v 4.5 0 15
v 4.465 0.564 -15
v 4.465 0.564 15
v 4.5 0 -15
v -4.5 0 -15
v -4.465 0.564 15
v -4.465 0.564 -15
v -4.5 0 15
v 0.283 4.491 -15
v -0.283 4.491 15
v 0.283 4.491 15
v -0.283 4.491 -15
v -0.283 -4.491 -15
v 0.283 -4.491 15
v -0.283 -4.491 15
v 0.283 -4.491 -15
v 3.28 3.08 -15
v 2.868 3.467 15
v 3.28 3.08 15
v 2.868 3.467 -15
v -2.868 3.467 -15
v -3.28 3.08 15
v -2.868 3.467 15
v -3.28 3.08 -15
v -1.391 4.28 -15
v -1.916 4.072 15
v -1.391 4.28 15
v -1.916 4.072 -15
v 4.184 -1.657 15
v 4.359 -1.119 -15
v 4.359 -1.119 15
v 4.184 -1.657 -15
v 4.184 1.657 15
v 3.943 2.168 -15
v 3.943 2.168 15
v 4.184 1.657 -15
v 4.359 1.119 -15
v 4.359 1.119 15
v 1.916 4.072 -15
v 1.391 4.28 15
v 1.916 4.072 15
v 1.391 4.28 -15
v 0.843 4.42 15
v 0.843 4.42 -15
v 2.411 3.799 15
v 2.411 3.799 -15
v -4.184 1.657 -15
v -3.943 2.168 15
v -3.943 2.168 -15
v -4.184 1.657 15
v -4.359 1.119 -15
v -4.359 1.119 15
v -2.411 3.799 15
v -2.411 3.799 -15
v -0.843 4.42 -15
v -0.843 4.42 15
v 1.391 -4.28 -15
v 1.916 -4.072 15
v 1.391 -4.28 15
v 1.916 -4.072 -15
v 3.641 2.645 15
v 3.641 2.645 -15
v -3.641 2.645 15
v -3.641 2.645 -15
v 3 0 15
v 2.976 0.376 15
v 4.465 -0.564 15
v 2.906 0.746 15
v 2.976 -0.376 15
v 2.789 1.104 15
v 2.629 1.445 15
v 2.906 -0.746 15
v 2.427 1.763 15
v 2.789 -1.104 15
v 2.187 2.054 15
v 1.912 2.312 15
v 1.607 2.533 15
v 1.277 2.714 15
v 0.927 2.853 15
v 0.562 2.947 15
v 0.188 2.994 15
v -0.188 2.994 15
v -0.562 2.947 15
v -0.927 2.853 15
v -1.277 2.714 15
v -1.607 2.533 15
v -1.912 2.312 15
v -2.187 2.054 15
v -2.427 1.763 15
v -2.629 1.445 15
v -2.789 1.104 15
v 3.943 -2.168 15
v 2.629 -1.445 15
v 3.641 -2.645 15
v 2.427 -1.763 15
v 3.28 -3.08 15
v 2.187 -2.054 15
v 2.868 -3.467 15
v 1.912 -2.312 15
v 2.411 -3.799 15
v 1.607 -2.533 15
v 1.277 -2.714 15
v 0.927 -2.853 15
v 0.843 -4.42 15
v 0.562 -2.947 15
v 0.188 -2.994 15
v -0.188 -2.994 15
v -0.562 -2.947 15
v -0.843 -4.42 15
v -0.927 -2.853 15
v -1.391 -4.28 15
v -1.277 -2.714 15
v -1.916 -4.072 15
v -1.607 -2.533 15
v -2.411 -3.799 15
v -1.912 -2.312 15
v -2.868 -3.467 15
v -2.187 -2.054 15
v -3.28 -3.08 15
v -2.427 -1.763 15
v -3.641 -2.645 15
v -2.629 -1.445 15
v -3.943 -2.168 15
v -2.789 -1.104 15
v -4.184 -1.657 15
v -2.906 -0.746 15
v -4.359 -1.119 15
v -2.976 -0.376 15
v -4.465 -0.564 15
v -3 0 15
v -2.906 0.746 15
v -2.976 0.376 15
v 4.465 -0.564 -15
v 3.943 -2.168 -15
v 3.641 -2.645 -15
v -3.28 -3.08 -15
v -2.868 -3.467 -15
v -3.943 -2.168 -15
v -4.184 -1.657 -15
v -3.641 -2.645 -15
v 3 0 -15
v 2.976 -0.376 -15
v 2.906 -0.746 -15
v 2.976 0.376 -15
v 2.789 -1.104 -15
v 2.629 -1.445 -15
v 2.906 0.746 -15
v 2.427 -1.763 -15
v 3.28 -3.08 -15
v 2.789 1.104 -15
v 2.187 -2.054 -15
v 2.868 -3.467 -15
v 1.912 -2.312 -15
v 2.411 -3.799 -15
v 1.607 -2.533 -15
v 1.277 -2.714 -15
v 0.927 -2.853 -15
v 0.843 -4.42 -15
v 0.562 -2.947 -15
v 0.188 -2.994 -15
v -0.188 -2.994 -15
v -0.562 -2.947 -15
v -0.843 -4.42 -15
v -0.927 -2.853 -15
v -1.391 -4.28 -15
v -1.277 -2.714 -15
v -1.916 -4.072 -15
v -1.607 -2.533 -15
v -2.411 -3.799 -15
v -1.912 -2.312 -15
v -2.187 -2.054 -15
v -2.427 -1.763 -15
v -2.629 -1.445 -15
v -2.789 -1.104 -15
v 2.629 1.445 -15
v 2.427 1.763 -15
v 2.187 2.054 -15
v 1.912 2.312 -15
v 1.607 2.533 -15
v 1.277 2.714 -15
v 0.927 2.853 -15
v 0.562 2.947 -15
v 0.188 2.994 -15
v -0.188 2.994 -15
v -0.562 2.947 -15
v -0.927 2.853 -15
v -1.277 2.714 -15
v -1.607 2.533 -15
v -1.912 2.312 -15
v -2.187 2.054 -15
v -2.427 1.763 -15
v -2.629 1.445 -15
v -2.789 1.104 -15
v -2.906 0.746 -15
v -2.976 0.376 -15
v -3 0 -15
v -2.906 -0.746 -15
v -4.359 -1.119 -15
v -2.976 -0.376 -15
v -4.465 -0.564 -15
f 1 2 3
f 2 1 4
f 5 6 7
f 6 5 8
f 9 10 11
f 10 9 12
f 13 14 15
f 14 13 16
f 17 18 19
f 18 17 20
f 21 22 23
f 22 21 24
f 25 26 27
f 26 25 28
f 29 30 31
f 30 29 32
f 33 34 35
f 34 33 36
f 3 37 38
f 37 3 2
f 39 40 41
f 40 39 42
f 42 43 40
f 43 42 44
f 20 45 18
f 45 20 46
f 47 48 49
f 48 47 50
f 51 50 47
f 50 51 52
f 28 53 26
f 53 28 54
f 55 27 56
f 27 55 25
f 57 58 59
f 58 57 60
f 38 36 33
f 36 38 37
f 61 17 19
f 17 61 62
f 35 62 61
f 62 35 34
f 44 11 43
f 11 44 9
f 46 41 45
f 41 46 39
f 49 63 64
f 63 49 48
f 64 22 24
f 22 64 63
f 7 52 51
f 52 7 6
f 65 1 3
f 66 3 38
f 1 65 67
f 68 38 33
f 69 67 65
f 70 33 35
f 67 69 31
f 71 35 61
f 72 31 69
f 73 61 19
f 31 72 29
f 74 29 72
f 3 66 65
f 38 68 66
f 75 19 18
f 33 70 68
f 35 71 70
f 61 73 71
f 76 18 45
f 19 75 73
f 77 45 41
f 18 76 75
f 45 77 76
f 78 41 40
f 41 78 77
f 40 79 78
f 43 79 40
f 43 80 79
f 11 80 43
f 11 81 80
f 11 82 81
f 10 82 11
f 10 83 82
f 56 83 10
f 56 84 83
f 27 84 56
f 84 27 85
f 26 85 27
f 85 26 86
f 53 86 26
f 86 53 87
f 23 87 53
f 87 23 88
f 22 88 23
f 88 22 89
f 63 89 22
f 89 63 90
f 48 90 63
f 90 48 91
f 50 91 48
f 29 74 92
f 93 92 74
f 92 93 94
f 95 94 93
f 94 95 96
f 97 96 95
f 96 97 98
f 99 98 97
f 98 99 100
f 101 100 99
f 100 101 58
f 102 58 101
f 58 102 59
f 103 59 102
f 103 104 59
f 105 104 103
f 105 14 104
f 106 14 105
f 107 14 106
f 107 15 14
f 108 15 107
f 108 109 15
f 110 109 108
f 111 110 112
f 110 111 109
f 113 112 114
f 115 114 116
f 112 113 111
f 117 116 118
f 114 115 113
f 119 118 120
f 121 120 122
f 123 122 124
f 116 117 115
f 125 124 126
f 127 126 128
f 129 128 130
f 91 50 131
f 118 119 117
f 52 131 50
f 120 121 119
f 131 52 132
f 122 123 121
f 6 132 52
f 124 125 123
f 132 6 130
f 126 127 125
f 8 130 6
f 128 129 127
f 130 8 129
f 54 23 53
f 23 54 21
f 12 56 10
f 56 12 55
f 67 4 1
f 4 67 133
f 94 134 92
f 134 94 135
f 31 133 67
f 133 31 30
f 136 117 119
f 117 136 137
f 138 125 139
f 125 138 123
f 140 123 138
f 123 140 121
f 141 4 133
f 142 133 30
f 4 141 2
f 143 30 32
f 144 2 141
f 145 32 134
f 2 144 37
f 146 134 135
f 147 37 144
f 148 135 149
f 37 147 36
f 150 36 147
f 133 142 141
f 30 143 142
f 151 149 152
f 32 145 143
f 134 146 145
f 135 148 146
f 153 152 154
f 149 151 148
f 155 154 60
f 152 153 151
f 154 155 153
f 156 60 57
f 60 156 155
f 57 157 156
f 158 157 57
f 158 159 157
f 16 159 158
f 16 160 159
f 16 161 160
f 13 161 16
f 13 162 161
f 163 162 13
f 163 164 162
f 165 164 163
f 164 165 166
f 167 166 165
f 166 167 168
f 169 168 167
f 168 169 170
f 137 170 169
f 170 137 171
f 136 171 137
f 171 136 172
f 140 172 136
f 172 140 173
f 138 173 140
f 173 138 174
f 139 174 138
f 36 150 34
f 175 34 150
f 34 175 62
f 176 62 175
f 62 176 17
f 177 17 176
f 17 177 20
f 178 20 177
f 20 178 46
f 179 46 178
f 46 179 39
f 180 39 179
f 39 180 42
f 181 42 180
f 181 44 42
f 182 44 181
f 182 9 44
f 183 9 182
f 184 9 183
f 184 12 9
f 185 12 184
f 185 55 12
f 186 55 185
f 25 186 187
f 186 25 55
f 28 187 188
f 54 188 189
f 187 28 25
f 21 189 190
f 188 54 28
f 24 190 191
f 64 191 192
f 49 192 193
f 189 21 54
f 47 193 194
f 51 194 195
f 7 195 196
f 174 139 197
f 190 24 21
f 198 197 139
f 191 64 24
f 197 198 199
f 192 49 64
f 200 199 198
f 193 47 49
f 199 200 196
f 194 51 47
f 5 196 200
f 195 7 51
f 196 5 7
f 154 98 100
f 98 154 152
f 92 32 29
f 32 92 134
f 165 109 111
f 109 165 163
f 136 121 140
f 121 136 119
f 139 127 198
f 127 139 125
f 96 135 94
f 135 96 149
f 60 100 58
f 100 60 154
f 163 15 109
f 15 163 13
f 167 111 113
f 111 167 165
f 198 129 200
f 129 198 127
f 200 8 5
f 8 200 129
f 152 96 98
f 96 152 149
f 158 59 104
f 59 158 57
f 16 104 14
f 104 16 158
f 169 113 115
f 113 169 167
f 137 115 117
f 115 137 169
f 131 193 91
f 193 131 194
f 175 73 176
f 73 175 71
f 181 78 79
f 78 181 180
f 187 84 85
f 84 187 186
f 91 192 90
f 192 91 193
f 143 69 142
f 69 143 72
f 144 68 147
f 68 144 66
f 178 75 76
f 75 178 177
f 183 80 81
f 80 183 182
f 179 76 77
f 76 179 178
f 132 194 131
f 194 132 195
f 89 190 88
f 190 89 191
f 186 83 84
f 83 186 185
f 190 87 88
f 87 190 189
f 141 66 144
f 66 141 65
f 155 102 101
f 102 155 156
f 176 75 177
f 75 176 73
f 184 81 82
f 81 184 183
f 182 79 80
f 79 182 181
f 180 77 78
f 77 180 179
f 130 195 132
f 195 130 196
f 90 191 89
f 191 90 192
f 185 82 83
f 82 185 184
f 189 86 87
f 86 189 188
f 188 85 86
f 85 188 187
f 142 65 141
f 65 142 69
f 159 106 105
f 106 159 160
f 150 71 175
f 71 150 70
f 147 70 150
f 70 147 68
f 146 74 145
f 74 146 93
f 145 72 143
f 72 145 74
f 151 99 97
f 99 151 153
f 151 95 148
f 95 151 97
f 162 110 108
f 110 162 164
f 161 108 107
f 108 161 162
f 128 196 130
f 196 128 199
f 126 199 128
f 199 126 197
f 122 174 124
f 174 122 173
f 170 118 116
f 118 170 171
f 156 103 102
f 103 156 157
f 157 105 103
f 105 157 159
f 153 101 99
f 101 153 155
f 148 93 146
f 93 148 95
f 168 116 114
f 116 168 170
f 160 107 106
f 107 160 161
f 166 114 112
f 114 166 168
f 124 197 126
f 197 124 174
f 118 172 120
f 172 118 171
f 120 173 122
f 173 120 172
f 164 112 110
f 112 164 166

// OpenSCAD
$fn = 50;


difference() {
	union() {
		translate(v = [0, 0, -15.0000000000]) {
			cylinder(h = 30, r = 4.5000000000);
		}
	}
	union() {
		translate(v = [0, 0, -100.0000000000]) {
			cylinder(h = 200, r = 3);
		}
	}
}
